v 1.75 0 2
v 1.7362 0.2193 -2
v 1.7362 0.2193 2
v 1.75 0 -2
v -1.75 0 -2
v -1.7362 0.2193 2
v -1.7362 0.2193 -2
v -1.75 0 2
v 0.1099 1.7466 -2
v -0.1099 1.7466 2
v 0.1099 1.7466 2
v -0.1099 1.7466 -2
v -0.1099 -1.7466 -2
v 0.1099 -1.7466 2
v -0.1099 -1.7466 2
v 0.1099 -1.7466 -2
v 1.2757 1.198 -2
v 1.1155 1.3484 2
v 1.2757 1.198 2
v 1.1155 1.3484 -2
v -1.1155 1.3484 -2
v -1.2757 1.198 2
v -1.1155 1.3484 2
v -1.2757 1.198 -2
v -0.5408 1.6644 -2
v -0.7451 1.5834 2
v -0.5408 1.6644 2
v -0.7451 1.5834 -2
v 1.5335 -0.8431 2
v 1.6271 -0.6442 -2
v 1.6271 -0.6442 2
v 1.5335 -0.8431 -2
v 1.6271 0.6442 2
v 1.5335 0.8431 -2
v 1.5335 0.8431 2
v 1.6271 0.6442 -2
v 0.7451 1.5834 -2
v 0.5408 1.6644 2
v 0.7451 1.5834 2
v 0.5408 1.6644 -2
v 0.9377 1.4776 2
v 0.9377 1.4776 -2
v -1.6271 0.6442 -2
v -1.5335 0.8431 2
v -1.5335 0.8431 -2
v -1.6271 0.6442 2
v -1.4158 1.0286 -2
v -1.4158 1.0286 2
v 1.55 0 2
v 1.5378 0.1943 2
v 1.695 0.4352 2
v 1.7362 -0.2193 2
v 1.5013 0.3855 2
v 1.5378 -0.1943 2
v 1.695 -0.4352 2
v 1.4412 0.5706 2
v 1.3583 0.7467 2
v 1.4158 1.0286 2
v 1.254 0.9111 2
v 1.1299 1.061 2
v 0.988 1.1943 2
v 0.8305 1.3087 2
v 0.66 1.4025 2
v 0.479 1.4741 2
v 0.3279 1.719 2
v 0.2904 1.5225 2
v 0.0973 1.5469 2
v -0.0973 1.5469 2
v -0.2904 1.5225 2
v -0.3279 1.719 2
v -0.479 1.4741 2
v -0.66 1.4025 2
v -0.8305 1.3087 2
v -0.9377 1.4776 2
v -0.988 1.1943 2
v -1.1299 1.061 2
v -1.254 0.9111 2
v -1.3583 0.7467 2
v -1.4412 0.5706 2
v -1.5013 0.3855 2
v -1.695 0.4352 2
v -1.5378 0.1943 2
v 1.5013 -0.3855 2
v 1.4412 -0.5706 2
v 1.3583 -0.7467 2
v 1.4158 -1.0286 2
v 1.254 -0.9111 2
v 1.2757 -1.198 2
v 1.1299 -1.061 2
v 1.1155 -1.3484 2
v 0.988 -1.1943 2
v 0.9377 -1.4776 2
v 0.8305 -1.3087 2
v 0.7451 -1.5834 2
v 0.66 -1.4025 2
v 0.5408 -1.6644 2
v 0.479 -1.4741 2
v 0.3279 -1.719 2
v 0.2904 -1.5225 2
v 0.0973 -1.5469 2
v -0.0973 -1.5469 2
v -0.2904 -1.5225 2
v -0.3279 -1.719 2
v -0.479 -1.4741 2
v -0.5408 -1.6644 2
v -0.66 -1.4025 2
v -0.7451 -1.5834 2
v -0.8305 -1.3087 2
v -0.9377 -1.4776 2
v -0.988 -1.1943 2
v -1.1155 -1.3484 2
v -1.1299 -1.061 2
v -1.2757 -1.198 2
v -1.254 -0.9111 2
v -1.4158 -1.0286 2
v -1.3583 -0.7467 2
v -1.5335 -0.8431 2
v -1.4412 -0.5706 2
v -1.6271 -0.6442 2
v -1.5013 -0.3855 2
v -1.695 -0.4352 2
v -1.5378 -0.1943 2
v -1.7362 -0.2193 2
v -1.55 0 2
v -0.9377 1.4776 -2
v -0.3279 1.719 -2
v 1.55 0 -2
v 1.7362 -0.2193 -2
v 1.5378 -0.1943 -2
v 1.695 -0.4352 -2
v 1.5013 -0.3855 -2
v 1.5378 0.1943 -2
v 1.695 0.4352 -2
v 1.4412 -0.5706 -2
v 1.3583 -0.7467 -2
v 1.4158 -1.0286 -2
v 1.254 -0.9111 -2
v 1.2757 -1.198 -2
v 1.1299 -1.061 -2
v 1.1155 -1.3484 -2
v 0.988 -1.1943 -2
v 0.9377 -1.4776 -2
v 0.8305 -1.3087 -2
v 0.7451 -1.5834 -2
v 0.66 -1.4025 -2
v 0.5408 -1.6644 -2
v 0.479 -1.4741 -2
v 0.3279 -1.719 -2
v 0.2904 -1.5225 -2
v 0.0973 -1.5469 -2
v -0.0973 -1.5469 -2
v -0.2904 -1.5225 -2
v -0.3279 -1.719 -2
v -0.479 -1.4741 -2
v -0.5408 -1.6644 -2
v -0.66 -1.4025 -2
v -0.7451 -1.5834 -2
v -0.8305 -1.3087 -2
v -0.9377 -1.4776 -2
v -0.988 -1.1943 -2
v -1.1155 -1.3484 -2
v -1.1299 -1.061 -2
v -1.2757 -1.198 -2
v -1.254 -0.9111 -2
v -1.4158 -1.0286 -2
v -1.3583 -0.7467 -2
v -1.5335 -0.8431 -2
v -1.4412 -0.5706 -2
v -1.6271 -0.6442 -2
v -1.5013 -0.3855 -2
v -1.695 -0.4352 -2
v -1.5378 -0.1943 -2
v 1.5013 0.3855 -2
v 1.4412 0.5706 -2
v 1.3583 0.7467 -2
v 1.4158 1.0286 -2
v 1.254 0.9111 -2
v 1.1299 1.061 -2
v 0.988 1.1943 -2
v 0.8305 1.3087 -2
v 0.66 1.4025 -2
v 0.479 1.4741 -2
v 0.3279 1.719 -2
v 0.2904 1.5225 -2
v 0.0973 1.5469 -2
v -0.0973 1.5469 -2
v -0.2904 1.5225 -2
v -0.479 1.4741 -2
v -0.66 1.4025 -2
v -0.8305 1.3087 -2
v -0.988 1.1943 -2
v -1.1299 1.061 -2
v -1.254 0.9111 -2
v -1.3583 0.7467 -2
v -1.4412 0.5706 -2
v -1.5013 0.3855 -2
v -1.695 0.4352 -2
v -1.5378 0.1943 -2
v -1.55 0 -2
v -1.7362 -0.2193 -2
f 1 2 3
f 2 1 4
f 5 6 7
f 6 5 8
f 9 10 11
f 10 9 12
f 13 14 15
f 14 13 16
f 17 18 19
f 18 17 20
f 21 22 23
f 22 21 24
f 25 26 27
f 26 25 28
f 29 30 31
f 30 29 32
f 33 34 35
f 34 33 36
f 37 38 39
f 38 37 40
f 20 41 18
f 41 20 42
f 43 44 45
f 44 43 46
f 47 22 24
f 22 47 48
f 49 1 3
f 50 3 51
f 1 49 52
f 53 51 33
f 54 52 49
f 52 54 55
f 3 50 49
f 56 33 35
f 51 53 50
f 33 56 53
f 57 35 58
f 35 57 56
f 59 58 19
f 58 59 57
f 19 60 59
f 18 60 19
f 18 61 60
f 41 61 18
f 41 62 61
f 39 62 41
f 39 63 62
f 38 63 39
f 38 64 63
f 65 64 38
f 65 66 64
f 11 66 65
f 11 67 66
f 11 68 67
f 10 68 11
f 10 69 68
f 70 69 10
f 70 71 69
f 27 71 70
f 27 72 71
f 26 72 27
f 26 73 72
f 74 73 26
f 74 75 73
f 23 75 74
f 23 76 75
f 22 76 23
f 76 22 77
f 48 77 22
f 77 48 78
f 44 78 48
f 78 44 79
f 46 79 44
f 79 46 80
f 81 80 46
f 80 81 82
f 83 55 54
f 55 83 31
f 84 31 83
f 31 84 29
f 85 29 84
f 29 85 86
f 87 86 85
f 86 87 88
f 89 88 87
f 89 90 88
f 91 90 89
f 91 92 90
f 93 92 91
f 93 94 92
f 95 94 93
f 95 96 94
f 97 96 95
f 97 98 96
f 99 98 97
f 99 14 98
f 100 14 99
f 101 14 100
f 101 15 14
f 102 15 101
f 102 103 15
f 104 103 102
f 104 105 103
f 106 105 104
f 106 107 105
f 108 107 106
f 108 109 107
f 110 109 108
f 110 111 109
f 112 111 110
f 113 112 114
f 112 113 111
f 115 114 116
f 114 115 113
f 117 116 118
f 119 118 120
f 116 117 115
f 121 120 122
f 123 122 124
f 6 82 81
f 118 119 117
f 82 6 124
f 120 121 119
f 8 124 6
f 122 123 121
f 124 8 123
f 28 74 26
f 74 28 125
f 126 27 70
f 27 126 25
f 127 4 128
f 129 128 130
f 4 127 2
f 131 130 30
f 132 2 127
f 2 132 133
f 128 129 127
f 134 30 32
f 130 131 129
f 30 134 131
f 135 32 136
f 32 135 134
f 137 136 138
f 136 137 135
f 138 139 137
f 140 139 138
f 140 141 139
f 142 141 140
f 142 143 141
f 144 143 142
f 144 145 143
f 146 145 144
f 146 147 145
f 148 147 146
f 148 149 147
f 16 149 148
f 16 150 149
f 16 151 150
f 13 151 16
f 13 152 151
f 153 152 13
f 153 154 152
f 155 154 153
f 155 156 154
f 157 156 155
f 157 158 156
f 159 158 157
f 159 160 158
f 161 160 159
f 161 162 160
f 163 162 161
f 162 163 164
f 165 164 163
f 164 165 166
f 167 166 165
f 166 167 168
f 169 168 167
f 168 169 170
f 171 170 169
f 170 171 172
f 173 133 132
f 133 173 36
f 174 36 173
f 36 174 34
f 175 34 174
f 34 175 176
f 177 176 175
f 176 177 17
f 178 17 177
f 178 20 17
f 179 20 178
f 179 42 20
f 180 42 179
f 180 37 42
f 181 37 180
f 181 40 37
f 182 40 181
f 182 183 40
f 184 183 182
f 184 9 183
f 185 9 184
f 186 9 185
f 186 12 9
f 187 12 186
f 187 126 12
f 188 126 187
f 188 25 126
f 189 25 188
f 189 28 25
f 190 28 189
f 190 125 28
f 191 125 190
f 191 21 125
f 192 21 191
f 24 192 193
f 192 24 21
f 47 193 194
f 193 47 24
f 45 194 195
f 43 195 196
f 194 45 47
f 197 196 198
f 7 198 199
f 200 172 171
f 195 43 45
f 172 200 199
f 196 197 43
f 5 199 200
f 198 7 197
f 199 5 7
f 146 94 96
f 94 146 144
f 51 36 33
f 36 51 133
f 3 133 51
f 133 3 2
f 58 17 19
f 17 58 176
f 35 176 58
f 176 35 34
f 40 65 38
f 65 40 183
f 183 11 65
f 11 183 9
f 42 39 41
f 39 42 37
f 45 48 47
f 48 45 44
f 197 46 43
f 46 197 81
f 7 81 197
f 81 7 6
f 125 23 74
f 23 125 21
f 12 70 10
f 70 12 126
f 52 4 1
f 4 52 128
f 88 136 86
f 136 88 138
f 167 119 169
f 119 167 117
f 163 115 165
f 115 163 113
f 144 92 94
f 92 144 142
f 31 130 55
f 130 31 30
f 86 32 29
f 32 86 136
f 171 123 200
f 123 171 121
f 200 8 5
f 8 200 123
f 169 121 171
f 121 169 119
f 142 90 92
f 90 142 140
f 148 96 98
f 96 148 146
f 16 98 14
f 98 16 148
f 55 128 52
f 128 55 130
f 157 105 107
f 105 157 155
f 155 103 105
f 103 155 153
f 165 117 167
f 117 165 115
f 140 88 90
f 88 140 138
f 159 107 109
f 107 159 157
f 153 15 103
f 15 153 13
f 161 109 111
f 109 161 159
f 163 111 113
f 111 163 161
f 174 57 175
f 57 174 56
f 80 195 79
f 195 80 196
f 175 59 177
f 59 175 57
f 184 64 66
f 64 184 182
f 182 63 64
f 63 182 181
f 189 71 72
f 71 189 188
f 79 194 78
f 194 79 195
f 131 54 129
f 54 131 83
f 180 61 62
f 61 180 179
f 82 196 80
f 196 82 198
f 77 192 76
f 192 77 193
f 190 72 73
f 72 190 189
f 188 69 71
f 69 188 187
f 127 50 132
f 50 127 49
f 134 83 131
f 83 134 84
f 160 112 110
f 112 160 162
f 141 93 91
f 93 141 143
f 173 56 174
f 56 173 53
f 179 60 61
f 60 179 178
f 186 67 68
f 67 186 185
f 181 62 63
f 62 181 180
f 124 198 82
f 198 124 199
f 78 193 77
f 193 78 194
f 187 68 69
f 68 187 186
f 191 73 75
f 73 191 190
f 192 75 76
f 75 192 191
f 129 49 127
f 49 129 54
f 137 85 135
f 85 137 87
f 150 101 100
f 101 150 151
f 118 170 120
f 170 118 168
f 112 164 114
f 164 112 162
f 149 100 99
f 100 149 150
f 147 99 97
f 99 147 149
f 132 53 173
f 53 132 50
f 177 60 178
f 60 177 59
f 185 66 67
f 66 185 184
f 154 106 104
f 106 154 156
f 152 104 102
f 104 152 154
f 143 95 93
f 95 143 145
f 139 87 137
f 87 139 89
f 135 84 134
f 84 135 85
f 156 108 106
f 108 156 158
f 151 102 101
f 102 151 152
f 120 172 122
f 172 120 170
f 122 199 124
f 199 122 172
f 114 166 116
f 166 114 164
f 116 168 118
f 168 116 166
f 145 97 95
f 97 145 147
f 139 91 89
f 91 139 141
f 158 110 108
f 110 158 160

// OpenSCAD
$fn = 50;


difference() {
	union() {
		translate(v = [0, 0, -2.0000000000]) {
			cylinder(h = 4, r = 1.7500000000);
		}
	}
	union() {
		translate(v = [0, 0, -100.0000000000]) {
			cylinder(h = 200, r = 1.5500000000);
		}
	}
}
